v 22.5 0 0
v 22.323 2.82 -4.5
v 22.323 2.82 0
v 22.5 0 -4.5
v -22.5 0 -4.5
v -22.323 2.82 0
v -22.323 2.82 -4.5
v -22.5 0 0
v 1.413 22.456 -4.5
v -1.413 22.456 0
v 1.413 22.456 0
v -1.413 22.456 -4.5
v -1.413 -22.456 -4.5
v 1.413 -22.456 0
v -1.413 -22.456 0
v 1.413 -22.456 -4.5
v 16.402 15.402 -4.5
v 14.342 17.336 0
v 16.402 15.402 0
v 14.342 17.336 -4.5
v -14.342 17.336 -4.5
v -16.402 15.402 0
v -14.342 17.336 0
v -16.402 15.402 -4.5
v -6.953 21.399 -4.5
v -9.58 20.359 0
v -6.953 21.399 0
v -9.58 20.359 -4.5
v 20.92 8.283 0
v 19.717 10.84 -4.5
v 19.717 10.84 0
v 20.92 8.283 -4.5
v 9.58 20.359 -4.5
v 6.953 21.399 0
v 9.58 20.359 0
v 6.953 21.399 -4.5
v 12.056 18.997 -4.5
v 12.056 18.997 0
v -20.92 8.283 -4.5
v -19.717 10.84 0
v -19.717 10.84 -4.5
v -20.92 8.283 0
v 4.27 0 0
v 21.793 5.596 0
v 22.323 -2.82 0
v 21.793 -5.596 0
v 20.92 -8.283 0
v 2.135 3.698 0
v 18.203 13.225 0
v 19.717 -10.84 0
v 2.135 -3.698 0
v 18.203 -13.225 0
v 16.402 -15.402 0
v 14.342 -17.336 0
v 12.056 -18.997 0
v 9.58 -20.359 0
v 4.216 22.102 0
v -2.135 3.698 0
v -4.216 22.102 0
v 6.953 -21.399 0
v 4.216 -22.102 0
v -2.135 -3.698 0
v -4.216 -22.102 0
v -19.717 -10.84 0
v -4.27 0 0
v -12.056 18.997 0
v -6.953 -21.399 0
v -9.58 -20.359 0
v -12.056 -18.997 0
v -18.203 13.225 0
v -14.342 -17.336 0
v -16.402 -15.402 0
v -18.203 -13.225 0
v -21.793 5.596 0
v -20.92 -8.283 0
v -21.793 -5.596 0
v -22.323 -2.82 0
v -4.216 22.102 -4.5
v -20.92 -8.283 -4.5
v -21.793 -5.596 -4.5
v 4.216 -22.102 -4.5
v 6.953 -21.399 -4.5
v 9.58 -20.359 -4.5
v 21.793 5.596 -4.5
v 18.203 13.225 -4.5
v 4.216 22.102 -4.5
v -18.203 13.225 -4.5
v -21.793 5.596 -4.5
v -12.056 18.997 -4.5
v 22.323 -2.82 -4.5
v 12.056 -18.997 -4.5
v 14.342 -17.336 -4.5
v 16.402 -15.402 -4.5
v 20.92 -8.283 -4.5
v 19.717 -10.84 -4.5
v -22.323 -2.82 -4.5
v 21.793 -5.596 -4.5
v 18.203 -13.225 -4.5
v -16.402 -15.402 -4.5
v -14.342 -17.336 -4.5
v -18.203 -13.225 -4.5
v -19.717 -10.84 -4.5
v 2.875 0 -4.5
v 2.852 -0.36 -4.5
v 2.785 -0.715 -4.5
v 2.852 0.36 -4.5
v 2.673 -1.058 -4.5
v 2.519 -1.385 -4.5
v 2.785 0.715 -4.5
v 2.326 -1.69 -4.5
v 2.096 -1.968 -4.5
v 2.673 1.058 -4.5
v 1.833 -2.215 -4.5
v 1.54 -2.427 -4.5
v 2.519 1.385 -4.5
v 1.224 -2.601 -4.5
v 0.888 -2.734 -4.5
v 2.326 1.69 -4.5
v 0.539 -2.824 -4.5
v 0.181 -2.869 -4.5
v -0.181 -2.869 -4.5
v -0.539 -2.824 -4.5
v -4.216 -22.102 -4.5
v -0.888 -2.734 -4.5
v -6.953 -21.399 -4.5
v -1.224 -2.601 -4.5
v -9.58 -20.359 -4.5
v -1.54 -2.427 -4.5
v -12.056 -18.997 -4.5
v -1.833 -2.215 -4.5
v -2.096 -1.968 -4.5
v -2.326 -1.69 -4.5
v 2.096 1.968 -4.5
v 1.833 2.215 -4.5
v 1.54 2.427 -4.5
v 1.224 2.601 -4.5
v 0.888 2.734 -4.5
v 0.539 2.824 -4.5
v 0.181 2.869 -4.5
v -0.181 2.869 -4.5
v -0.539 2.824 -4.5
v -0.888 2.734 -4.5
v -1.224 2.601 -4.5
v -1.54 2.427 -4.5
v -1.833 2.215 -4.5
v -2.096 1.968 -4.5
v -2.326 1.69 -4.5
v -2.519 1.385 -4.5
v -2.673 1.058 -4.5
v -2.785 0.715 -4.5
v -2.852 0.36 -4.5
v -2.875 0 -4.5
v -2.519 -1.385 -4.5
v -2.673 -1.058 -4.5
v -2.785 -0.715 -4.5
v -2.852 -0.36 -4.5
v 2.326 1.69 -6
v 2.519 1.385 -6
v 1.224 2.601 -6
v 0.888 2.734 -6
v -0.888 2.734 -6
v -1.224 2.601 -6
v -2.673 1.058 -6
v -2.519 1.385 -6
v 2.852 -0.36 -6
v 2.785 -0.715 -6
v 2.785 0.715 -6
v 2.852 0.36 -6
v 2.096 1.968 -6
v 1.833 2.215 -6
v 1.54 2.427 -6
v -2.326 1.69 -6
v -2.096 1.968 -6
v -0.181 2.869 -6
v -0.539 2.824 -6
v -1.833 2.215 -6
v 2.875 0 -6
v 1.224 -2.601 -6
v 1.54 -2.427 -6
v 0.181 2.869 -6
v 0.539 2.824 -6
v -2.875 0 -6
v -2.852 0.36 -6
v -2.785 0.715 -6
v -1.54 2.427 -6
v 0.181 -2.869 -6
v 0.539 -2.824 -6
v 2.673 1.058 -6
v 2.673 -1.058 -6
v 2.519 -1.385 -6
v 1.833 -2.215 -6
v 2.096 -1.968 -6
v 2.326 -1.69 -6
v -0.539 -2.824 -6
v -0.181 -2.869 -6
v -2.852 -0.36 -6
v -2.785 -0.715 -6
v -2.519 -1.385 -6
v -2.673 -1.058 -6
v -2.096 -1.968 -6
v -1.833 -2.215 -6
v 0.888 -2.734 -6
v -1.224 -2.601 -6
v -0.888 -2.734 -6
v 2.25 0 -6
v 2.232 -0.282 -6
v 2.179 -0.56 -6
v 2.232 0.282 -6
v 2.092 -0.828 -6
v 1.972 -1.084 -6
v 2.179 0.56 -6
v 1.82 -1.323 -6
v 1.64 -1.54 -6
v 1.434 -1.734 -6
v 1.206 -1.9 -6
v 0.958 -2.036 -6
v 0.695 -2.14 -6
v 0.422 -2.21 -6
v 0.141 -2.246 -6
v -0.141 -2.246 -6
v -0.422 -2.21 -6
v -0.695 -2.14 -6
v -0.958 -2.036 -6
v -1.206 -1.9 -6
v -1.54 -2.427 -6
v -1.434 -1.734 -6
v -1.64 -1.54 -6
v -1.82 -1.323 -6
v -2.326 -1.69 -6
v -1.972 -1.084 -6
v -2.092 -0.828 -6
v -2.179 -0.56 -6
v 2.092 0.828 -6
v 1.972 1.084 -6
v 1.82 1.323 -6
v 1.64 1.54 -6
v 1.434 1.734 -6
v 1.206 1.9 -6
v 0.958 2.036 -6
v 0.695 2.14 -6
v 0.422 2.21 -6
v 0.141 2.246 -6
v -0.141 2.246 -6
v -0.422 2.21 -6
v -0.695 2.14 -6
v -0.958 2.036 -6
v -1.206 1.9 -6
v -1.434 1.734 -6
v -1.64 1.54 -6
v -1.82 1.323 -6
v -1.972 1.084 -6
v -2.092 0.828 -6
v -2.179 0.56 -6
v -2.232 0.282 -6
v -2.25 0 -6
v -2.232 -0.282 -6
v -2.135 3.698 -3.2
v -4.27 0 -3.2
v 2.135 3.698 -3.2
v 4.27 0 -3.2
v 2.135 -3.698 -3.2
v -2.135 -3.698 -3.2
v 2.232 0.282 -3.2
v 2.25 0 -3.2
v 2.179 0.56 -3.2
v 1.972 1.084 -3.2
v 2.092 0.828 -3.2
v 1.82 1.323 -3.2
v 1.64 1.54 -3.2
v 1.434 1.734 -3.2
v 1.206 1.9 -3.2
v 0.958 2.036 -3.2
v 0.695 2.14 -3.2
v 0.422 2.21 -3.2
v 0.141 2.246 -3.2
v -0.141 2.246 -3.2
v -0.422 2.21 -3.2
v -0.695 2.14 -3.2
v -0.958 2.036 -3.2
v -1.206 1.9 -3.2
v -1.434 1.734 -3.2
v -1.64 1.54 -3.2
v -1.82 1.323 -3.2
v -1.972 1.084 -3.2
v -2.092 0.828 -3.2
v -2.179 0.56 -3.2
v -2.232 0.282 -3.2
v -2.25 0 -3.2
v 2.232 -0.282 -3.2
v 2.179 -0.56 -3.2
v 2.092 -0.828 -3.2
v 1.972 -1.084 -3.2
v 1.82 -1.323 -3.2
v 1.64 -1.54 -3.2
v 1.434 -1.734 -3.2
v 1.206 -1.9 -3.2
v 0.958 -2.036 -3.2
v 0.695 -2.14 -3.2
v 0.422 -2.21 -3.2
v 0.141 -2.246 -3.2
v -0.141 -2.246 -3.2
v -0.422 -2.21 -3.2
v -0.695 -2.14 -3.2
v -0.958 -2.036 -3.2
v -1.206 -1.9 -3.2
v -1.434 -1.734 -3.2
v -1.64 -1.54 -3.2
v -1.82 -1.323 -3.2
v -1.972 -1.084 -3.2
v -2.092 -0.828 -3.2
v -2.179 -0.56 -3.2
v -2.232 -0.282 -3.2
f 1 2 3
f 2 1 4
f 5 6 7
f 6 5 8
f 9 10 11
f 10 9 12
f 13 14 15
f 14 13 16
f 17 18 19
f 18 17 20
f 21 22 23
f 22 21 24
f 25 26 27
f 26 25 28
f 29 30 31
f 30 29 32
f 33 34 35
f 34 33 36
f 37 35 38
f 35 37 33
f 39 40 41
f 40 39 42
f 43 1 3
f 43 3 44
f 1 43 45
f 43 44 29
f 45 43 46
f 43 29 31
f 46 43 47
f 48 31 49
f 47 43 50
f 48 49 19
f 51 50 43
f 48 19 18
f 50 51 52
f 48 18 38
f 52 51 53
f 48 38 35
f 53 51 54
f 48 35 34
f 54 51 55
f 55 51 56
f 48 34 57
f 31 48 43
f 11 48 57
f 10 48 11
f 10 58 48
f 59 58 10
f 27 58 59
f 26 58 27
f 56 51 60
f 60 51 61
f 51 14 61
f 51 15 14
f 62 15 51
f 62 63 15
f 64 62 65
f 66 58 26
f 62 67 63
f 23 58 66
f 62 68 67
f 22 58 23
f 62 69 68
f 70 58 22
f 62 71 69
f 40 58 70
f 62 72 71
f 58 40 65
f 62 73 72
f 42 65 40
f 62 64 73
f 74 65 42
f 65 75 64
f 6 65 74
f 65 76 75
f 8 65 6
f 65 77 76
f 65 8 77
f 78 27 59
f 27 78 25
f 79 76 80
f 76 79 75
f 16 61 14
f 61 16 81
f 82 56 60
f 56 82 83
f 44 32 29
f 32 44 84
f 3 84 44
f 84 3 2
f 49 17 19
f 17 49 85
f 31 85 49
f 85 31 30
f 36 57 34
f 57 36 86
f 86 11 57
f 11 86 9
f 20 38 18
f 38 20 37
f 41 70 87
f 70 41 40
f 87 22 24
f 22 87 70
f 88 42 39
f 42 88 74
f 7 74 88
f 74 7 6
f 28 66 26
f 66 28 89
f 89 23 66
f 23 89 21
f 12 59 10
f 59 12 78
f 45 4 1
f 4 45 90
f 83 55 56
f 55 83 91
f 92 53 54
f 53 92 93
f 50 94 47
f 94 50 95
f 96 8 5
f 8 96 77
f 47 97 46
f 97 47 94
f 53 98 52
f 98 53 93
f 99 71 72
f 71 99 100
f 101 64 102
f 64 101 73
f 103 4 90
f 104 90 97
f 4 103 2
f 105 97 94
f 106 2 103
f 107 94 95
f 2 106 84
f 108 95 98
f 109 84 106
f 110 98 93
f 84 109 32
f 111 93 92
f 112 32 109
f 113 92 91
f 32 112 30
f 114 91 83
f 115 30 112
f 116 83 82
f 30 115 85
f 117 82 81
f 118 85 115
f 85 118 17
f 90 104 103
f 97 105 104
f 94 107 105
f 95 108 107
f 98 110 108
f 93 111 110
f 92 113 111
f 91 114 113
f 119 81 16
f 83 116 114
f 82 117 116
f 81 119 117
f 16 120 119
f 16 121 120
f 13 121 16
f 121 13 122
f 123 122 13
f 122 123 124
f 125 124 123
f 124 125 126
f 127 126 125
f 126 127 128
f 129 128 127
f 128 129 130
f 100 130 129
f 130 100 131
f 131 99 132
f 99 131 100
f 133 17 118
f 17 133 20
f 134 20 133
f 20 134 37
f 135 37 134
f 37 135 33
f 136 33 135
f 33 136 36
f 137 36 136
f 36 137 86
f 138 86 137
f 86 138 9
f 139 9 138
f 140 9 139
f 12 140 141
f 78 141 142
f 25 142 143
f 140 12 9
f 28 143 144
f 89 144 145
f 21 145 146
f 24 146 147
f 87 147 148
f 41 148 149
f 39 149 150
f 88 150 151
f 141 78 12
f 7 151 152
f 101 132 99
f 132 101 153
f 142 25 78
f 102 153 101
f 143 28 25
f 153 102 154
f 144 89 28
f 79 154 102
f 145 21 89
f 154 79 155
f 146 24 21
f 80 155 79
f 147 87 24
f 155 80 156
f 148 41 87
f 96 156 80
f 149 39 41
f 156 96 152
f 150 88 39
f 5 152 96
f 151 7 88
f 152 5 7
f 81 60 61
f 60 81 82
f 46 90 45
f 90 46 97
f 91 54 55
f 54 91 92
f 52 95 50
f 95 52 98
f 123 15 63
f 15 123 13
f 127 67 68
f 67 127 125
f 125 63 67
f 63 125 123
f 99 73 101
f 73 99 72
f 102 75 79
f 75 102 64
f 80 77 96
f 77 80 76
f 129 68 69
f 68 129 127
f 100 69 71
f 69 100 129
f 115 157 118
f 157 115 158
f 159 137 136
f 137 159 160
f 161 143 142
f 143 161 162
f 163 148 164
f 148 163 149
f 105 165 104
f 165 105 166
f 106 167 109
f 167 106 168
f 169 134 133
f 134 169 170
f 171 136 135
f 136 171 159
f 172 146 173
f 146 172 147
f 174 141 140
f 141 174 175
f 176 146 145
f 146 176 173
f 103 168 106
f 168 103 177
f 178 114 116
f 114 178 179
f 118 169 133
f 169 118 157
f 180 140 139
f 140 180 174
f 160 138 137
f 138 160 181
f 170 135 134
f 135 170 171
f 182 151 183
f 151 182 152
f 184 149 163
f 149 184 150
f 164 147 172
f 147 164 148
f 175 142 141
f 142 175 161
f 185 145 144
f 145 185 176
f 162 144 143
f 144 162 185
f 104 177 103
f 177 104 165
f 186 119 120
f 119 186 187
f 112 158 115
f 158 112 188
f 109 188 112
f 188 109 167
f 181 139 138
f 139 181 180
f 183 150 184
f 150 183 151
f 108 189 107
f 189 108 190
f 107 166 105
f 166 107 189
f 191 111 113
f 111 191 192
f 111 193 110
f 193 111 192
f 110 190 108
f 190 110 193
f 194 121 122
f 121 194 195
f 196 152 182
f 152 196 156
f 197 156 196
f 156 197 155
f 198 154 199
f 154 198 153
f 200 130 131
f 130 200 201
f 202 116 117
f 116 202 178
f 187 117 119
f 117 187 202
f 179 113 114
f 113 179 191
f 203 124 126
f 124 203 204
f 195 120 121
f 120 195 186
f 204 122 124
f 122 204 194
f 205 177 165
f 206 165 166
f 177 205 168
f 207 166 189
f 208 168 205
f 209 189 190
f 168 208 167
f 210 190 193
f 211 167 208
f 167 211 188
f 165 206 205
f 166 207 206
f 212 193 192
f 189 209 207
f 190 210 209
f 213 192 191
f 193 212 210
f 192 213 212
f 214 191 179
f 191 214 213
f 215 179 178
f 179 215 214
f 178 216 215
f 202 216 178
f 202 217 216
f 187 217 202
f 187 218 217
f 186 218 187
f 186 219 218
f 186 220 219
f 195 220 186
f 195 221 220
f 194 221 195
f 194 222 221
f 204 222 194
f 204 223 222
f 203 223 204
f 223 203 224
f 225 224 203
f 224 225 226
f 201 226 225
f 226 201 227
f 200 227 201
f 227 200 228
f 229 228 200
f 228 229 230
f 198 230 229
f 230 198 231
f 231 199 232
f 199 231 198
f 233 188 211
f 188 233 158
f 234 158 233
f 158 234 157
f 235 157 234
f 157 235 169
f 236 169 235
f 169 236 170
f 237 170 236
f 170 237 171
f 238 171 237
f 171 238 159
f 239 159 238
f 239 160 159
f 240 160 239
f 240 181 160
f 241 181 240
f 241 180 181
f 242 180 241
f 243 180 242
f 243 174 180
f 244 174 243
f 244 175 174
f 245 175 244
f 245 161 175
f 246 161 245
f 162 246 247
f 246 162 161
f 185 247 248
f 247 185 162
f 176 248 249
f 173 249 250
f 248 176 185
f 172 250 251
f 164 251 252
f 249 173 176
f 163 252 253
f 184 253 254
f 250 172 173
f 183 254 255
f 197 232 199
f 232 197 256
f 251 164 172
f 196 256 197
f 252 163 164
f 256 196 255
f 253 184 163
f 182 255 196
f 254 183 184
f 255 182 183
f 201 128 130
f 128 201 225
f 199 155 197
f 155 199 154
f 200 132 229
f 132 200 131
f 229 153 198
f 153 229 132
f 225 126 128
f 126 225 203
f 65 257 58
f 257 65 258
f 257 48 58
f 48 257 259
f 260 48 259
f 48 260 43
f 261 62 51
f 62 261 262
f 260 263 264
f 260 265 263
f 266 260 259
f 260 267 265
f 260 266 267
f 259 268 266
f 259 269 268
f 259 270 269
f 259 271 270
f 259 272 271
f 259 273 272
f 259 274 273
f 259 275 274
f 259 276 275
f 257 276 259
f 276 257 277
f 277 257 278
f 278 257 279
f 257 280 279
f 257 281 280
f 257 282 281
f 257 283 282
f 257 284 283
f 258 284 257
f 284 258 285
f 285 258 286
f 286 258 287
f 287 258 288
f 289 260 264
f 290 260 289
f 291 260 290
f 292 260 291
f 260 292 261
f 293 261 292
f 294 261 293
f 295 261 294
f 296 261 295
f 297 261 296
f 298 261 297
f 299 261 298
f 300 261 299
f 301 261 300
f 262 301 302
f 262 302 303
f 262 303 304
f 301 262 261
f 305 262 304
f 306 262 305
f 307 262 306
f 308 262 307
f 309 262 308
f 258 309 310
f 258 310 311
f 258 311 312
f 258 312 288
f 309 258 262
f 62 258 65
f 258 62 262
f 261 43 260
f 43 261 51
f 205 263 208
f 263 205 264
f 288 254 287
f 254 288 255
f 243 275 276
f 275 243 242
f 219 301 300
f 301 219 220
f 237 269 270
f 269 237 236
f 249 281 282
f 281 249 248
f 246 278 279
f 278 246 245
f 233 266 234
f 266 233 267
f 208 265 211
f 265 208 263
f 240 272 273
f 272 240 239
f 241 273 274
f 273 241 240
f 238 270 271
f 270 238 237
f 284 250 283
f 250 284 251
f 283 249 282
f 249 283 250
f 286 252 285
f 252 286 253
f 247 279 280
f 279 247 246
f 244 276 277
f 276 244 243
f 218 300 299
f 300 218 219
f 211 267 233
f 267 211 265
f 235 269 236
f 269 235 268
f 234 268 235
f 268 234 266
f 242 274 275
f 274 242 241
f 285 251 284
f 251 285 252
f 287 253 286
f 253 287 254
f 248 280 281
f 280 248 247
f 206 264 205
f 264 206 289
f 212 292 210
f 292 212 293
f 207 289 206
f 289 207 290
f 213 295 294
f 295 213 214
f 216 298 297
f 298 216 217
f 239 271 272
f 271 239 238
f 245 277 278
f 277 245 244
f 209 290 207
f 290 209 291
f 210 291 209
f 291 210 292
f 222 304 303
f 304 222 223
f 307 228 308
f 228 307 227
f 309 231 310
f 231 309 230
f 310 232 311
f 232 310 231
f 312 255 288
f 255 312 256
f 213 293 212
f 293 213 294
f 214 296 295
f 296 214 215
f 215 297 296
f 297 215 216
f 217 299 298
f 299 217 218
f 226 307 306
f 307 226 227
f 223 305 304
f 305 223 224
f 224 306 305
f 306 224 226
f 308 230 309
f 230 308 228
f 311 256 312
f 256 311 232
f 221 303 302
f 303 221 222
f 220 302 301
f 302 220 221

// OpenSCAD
$fn = 50;


difference() {
	union() {
		translate(v = [0, 0, -4.5000000000]) {
			cylinder(h = 4.5000000000, r = 22.5000000000);
		}
		translate(v = [0, 0, -6.0000000000]) {
			cylinder(h = 6, r = 2.8750000000);
		}
	}
	union() {
		translate(v = [0, 0, 0]) {
			rotate(a = [0, 0, 0]) {
				difference() {
					union() {
						translate(v = [0, 0, -3.2000000000]) {
							linear_extrude(height = 3.2000000000) {
								polygon(points = [[4.2698000000, 0.0000000000], [2.1349000000, 3.6977552691], [-2.1349000000, 3.6977552691], [-4.2698000000, 0.0000000000], [-2.1349000000, -3.6977552691], [2.1349000000, -3.6977552691]]);
							}
						}
					}
					union();
				}
			}
		}
		#translate(v = [0, 0, -100.0000000000]) {
			cylinder(h = 200, r = 2.2500000000);
		}
	}
}
